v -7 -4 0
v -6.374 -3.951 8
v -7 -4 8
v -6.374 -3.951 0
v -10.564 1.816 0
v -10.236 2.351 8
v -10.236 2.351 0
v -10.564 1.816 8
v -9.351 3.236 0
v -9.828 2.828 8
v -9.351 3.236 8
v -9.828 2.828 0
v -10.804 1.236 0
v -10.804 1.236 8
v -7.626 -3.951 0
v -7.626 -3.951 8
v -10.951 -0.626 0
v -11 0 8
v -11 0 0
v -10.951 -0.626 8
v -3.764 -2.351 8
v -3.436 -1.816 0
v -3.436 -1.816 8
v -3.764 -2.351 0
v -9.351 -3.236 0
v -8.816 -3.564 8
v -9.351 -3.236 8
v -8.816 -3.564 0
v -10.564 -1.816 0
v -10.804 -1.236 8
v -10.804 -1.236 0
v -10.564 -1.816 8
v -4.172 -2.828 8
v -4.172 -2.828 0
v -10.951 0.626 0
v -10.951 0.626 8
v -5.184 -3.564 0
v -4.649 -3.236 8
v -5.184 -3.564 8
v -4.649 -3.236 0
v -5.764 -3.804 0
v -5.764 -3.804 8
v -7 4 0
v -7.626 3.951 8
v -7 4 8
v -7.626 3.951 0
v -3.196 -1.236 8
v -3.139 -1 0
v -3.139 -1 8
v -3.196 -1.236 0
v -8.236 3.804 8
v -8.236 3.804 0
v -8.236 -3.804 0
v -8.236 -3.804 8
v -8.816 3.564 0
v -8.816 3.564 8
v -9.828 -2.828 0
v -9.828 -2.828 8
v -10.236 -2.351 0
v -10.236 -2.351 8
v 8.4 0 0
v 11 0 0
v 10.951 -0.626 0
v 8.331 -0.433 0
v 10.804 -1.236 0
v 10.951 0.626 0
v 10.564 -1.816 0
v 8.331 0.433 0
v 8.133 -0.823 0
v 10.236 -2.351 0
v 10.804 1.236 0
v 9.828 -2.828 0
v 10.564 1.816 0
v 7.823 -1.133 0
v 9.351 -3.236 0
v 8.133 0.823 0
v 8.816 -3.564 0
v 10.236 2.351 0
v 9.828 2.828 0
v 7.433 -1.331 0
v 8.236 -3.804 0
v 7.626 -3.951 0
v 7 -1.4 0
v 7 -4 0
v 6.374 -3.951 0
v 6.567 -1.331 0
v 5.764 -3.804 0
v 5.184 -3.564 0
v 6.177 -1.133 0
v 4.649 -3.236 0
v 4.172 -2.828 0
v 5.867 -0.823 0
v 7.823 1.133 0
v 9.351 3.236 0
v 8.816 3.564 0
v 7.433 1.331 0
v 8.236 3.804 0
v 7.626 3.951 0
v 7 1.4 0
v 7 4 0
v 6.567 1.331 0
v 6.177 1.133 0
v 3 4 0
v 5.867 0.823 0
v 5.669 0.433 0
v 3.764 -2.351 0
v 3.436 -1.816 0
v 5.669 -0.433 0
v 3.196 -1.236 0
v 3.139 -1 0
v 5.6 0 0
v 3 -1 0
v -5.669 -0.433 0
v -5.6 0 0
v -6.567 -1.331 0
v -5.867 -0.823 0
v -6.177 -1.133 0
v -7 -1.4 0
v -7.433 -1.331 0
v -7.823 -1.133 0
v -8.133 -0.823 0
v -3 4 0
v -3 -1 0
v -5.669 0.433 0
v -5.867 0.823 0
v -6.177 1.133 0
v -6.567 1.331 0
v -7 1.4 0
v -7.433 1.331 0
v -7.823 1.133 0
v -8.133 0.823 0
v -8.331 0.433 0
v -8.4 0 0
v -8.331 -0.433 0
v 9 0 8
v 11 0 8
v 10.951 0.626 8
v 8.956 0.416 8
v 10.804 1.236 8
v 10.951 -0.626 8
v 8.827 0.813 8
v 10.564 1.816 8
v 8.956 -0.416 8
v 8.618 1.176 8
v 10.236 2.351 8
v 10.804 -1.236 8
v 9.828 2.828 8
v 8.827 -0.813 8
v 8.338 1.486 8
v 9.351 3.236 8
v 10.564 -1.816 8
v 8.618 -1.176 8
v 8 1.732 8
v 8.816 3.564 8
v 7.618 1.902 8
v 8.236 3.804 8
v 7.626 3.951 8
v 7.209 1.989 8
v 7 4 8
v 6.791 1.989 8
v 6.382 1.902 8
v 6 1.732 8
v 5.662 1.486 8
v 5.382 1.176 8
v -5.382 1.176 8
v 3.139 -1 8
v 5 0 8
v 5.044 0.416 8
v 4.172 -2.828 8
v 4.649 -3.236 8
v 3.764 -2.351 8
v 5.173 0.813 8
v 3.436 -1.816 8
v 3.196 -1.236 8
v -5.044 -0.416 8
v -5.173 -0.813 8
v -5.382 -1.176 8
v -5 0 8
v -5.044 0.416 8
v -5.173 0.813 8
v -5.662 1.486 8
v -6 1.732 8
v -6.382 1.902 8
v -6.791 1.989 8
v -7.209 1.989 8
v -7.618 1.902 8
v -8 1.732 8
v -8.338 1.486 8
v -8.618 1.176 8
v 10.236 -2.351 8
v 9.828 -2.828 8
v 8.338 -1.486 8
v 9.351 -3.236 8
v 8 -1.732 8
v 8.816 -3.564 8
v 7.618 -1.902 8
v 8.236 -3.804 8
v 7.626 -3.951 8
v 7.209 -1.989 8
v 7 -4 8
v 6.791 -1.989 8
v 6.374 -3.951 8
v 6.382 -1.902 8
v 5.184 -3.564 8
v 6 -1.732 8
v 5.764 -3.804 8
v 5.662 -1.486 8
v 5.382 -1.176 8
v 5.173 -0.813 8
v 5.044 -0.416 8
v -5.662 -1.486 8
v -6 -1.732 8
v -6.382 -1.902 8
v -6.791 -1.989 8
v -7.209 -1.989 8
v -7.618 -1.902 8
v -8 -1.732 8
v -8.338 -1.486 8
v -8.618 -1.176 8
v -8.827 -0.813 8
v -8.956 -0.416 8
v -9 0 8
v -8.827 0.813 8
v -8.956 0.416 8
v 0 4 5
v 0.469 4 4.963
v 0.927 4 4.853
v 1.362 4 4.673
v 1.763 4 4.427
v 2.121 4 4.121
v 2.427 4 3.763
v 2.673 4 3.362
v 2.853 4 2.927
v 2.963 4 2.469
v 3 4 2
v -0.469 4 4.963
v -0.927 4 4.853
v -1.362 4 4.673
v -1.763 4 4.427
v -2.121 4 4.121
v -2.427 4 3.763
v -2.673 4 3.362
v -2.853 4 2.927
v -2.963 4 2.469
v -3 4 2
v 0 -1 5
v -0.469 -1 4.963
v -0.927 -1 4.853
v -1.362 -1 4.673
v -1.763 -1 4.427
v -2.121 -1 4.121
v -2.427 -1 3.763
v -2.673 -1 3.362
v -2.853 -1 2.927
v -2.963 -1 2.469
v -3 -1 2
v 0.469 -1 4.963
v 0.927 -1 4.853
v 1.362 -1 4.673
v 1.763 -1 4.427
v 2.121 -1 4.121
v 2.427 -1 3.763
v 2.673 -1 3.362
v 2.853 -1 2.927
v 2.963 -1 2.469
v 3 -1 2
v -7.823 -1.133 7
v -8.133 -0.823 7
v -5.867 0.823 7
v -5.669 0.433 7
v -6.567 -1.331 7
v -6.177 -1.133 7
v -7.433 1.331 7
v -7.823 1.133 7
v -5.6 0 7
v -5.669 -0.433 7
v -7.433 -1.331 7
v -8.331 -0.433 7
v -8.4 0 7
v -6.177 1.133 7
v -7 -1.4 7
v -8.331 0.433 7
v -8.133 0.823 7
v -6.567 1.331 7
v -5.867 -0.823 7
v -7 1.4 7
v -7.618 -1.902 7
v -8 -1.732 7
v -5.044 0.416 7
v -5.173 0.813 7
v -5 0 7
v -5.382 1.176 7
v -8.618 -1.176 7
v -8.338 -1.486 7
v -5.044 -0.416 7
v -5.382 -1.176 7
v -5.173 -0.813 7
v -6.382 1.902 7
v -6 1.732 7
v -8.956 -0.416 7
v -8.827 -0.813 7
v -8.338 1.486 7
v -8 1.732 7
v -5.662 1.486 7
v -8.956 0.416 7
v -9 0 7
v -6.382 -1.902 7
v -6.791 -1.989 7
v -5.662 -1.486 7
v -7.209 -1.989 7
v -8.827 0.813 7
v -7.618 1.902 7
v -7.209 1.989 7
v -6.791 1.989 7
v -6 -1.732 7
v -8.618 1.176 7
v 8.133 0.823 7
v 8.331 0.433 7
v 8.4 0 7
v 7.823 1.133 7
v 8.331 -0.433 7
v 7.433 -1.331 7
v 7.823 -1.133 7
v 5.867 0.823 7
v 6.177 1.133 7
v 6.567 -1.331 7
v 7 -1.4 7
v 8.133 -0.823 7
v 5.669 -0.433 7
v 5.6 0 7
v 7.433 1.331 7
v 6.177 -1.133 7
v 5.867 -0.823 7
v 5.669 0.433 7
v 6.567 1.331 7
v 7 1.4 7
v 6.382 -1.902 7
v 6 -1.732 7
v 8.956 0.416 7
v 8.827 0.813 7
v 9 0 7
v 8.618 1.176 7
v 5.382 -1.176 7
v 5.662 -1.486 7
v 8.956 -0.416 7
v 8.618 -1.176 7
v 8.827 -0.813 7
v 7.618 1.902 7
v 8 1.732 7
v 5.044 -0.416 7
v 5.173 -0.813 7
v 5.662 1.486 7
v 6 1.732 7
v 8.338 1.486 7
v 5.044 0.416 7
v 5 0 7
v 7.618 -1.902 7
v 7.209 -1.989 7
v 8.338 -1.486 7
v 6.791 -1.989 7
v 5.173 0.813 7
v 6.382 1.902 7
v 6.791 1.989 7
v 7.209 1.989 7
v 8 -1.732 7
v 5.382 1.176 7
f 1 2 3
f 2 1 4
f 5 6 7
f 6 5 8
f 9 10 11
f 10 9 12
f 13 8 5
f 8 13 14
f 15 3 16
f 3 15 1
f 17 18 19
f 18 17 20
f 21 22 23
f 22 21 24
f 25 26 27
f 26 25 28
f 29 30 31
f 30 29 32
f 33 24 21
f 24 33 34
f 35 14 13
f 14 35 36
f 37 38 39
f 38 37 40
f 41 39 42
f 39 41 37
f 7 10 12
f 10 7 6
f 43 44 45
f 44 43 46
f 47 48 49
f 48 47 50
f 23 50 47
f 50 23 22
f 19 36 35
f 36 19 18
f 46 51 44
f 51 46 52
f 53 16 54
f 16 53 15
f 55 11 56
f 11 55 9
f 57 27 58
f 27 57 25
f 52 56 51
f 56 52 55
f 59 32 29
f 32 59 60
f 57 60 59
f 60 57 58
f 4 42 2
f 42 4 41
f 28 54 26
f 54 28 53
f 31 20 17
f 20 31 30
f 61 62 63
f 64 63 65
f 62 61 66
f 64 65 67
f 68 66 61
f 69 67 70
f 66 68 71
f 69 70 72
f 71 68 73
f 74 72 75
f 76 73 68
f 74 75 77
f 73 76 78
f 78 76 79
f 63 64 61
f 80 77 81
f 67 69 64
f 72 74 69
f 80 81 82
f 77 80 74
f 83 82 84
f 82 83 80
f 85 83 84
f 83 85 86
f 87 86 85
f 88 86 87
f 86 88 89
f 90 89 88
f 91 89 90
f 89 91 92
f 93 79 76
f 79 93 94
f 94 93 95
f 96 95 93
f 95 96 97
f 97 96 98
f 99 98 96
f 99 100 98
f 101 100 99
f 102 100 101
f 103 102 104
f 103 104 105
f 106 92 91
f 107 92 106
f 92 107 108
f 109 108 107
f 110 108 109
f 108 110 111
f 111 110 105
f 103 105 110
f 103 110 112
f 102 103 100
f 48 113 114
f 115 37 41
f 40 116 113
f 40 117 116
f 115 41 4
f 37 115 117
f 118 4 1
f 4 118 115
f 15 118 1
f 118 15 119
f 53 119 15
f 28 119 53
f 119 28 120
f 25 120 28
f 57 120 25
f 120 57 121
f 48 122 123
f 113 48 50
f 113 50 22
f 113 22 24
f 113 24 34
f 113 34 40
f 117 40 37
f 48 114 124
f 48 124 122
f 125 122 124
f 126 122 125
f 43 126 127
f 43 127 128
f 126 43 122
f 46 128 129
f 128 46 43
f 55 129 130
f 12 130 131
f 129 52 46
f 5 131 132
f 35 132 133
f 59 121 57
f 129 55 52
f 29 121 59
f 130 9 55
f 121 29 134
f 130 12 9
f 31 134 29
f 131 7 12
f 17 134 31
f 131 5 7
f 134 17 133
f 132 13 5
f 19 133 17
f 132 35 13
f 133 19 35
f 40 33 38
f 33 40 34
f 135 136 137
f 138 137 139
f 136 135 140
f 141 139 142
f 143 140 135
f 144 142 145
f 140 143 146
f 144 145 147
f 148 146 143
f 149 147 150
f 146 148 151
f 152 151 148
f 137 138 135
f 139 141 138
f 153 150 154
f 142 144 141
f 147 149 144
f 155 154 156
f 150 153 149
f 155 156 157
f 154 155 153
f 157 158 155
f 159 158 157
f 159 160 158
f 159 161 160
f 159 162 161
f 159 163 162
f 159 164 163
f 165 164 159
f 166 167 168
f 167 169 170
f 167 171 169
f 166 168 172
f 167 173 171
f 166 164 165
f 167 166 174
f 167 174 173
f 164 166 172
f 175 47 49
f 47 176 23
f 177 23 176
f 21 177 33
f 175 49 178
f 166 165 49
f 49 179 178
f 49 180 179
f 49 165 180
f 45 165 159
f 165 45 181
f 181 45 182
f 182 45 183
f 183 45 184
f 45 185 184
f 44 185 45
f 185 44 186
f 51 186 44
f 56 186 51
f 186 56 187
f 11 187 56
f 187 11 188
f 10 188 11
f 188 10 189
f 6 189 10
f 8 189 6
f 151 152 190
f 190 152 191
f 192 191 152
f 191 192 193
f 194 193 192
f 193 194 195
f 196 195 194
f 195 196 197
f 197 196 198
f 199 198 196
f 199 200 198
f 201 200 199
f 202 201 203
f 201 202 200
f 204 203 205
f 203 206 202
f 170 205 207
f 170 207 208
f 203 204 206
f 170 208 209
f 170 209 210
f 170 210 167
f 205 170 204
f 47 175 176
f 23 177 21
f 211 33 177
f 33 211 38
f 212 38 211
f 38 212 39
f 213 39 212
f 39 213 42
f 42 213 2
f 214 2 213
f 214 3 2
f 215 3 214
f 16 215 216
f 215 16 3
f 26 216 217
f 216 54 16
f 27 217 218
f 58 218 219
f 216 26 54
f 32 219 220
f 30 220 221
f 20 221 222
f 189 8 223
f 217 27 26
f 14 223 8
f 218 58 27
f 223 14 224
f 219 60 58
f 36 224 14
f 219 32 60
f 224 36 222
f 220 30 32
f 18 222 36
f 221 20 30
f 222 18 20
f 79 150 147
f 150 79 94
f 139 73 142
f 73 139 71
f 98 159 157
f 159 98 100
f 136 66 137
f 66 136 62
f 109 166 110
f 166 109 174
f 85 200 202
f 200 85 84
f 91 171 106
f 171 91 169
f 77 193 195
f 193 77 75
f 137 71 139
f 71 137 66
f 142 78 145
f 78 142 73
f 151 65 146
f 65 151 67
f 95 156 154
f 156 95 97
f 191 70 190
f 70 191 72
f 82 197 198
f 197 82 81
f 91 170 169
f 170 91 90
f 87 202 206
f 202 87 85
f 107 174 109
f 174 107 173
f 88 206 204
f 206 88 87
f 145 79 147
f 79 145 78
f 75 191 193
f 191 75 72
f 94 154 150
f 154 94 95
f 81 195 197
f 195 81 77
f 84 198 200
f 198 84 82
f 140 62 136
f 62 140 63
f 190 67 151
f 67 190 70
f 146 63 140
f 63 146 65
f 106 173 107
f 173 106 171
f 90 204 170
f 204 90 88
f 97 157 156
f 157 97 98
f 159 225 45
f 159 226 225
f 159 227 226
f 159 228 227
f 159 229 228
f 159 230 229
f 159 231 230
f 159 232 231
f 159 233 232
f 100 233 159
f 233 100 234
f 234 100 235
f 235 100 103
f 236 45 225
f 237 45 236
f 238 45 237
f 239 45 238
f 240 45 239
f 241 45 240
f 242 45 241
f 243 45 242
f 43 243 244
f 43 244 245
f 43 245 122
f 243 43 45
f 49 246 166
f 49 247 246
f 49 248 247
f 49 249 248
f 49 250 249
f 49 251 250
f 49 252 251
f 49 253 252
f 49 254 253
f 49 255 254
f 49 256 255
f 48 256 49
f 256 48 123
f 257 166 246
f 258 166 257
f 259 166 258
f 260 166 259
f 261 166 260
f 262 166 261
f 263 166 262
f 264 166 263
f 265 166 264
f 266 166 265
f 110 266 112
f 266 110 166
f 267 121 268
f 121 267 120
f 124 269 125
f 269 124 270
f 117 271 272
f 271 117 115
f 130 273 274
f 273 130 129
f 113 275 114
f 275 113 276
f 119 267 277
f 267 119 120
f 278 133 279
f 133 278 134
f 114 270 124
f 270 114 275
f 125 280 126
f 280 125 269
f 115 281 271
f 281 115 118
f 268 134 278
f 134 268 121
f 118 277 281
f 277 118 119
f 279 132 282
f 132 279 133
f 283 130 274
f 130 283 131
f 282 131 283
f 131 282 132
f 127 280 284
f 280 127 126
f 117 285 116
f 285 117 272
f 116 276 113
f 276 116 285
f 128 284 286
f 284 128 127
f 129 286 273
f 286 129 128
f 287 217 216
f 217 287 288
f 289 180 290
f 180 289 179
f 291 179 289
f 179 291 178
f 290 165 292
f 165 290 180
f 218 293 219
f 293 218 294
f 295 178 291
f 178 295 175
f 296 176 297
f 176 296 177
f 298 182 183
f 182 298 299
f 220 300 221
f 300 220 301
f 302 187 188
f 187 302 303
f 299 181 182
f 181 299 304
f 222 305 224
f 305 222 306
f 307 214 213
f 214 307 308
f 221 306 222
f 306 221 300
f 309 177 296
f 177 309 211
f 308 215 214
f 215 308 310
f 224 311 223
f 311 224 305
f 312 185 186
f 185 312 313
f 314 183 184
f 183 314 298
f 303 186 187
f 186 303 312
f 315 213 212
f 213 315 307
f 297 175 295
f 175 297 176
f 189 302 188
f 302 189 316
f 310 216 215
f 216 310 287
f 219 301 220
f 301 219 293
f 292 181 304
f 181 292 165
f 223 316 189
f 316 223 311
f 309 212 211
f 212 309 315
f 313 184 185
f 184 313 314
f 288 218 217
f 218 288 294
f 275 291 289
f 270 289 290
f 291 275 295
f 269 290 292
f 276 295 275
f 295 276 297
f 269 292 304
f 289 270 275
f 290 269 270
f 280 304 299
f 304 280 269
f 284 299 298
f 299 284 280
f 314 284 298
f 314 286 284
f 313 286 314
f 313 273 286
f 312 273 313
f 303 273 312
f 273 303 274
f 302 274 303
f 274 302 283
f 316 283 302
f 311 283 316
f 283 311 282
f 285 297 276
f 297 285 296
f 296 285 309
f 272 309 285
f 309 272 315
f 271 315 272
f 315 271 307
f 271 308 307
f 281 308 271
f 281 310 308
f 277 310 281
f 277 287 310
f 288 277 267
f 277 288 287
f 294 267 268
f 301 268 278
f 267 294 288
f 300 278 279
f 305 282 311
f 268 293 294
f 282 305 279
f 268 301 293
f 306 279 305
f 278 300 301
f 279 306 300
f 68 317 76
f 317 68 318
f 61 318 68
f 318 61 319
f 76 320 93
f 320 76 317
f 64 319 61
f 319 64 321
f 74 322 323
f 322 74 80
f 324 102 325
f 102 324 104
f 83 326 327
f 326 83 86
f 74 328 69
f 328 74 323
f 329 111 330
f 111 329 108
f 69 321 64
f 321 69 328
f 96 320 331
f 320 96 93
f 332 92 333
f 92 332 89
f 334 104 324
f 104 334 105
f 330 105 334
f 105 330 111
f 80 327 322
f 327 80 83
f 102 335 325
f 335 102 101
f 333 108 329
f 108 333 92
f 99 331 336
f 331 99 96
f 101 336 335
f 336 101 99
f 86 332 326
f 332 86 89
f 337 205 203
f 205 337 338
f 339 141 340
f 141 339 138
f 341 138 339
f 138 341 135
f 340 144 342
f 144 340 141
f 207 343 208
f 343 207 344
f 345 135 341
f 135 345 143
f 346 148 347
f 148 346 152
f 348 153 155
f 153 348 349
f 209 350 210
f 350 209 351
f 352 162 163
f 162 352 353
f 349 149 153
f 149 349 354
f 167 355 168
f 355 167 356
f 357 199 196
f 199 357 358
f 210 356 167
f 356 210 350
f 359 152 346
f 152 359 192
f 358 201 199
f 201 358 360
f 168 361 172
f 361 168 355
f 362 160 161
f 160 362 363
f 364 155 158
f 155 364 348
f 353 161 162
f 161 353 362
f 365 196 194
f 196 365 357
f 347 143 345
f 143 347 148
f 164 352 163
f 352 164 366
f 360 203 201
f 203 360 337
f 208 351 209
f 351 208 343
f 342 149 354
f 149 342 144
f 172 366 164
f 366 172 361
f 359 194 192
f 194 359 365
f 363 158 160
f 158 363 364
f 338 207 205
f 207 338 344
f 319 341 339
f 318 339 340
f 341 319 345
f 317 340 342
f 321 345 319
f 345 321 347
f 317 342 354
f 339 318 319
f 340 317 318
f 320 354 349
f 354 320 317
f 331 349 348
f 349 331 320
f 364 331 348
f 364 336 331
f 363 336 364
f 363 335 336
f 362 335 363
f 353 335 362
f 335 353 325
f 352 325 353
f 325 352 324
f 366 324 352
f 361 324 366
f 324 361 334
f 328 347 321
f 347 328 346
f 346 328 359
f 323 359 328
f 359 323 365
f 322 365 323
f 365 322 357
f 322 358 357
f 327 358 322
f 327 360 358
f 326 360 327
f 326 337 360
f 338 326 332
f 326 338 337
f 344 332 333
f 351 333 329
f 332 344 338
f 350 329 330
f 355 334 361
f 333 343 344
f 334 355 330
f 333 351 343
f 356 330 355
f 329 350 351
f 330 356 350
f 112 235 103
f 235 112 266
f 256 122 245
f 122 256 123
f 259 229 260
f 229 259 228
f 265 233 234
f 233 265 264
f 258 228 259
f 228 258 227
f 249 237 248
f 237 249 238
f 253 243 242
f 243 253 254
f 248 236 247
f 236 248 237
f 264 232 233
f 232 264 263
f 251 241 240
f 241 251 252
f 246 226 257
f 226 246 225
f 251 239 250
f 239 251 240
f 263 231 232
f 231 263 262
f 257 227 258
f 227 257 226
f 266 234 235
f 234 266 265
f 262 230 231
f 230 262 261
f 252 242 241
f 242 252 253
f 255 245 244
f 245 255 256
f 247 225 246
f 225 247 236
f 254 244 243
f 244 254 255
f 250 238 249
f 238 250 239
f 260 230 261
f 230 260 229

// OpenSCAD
difference() {
   union() {
      for(i=[-1,1]) translate([7*i,0,0]) cylinder($fn=40,d=8,h=8);
      translate([-7,-1,0]) cube([14,5,8]);
   }

   for(i=[-1,1]) translate([7*i,0,-1]) {
      cylinder(d=2.8,h=12,$fn=20);
      translate([0,0,8]) cylinder(d=4,h=4, $fn=30);
   }

   translate([-3,-5,-1]) cube([6,10,3]);
   translate([0,-5,2]) rotate([-90,0,0]) cylinder($fn=40,d=6,h=10);
}
